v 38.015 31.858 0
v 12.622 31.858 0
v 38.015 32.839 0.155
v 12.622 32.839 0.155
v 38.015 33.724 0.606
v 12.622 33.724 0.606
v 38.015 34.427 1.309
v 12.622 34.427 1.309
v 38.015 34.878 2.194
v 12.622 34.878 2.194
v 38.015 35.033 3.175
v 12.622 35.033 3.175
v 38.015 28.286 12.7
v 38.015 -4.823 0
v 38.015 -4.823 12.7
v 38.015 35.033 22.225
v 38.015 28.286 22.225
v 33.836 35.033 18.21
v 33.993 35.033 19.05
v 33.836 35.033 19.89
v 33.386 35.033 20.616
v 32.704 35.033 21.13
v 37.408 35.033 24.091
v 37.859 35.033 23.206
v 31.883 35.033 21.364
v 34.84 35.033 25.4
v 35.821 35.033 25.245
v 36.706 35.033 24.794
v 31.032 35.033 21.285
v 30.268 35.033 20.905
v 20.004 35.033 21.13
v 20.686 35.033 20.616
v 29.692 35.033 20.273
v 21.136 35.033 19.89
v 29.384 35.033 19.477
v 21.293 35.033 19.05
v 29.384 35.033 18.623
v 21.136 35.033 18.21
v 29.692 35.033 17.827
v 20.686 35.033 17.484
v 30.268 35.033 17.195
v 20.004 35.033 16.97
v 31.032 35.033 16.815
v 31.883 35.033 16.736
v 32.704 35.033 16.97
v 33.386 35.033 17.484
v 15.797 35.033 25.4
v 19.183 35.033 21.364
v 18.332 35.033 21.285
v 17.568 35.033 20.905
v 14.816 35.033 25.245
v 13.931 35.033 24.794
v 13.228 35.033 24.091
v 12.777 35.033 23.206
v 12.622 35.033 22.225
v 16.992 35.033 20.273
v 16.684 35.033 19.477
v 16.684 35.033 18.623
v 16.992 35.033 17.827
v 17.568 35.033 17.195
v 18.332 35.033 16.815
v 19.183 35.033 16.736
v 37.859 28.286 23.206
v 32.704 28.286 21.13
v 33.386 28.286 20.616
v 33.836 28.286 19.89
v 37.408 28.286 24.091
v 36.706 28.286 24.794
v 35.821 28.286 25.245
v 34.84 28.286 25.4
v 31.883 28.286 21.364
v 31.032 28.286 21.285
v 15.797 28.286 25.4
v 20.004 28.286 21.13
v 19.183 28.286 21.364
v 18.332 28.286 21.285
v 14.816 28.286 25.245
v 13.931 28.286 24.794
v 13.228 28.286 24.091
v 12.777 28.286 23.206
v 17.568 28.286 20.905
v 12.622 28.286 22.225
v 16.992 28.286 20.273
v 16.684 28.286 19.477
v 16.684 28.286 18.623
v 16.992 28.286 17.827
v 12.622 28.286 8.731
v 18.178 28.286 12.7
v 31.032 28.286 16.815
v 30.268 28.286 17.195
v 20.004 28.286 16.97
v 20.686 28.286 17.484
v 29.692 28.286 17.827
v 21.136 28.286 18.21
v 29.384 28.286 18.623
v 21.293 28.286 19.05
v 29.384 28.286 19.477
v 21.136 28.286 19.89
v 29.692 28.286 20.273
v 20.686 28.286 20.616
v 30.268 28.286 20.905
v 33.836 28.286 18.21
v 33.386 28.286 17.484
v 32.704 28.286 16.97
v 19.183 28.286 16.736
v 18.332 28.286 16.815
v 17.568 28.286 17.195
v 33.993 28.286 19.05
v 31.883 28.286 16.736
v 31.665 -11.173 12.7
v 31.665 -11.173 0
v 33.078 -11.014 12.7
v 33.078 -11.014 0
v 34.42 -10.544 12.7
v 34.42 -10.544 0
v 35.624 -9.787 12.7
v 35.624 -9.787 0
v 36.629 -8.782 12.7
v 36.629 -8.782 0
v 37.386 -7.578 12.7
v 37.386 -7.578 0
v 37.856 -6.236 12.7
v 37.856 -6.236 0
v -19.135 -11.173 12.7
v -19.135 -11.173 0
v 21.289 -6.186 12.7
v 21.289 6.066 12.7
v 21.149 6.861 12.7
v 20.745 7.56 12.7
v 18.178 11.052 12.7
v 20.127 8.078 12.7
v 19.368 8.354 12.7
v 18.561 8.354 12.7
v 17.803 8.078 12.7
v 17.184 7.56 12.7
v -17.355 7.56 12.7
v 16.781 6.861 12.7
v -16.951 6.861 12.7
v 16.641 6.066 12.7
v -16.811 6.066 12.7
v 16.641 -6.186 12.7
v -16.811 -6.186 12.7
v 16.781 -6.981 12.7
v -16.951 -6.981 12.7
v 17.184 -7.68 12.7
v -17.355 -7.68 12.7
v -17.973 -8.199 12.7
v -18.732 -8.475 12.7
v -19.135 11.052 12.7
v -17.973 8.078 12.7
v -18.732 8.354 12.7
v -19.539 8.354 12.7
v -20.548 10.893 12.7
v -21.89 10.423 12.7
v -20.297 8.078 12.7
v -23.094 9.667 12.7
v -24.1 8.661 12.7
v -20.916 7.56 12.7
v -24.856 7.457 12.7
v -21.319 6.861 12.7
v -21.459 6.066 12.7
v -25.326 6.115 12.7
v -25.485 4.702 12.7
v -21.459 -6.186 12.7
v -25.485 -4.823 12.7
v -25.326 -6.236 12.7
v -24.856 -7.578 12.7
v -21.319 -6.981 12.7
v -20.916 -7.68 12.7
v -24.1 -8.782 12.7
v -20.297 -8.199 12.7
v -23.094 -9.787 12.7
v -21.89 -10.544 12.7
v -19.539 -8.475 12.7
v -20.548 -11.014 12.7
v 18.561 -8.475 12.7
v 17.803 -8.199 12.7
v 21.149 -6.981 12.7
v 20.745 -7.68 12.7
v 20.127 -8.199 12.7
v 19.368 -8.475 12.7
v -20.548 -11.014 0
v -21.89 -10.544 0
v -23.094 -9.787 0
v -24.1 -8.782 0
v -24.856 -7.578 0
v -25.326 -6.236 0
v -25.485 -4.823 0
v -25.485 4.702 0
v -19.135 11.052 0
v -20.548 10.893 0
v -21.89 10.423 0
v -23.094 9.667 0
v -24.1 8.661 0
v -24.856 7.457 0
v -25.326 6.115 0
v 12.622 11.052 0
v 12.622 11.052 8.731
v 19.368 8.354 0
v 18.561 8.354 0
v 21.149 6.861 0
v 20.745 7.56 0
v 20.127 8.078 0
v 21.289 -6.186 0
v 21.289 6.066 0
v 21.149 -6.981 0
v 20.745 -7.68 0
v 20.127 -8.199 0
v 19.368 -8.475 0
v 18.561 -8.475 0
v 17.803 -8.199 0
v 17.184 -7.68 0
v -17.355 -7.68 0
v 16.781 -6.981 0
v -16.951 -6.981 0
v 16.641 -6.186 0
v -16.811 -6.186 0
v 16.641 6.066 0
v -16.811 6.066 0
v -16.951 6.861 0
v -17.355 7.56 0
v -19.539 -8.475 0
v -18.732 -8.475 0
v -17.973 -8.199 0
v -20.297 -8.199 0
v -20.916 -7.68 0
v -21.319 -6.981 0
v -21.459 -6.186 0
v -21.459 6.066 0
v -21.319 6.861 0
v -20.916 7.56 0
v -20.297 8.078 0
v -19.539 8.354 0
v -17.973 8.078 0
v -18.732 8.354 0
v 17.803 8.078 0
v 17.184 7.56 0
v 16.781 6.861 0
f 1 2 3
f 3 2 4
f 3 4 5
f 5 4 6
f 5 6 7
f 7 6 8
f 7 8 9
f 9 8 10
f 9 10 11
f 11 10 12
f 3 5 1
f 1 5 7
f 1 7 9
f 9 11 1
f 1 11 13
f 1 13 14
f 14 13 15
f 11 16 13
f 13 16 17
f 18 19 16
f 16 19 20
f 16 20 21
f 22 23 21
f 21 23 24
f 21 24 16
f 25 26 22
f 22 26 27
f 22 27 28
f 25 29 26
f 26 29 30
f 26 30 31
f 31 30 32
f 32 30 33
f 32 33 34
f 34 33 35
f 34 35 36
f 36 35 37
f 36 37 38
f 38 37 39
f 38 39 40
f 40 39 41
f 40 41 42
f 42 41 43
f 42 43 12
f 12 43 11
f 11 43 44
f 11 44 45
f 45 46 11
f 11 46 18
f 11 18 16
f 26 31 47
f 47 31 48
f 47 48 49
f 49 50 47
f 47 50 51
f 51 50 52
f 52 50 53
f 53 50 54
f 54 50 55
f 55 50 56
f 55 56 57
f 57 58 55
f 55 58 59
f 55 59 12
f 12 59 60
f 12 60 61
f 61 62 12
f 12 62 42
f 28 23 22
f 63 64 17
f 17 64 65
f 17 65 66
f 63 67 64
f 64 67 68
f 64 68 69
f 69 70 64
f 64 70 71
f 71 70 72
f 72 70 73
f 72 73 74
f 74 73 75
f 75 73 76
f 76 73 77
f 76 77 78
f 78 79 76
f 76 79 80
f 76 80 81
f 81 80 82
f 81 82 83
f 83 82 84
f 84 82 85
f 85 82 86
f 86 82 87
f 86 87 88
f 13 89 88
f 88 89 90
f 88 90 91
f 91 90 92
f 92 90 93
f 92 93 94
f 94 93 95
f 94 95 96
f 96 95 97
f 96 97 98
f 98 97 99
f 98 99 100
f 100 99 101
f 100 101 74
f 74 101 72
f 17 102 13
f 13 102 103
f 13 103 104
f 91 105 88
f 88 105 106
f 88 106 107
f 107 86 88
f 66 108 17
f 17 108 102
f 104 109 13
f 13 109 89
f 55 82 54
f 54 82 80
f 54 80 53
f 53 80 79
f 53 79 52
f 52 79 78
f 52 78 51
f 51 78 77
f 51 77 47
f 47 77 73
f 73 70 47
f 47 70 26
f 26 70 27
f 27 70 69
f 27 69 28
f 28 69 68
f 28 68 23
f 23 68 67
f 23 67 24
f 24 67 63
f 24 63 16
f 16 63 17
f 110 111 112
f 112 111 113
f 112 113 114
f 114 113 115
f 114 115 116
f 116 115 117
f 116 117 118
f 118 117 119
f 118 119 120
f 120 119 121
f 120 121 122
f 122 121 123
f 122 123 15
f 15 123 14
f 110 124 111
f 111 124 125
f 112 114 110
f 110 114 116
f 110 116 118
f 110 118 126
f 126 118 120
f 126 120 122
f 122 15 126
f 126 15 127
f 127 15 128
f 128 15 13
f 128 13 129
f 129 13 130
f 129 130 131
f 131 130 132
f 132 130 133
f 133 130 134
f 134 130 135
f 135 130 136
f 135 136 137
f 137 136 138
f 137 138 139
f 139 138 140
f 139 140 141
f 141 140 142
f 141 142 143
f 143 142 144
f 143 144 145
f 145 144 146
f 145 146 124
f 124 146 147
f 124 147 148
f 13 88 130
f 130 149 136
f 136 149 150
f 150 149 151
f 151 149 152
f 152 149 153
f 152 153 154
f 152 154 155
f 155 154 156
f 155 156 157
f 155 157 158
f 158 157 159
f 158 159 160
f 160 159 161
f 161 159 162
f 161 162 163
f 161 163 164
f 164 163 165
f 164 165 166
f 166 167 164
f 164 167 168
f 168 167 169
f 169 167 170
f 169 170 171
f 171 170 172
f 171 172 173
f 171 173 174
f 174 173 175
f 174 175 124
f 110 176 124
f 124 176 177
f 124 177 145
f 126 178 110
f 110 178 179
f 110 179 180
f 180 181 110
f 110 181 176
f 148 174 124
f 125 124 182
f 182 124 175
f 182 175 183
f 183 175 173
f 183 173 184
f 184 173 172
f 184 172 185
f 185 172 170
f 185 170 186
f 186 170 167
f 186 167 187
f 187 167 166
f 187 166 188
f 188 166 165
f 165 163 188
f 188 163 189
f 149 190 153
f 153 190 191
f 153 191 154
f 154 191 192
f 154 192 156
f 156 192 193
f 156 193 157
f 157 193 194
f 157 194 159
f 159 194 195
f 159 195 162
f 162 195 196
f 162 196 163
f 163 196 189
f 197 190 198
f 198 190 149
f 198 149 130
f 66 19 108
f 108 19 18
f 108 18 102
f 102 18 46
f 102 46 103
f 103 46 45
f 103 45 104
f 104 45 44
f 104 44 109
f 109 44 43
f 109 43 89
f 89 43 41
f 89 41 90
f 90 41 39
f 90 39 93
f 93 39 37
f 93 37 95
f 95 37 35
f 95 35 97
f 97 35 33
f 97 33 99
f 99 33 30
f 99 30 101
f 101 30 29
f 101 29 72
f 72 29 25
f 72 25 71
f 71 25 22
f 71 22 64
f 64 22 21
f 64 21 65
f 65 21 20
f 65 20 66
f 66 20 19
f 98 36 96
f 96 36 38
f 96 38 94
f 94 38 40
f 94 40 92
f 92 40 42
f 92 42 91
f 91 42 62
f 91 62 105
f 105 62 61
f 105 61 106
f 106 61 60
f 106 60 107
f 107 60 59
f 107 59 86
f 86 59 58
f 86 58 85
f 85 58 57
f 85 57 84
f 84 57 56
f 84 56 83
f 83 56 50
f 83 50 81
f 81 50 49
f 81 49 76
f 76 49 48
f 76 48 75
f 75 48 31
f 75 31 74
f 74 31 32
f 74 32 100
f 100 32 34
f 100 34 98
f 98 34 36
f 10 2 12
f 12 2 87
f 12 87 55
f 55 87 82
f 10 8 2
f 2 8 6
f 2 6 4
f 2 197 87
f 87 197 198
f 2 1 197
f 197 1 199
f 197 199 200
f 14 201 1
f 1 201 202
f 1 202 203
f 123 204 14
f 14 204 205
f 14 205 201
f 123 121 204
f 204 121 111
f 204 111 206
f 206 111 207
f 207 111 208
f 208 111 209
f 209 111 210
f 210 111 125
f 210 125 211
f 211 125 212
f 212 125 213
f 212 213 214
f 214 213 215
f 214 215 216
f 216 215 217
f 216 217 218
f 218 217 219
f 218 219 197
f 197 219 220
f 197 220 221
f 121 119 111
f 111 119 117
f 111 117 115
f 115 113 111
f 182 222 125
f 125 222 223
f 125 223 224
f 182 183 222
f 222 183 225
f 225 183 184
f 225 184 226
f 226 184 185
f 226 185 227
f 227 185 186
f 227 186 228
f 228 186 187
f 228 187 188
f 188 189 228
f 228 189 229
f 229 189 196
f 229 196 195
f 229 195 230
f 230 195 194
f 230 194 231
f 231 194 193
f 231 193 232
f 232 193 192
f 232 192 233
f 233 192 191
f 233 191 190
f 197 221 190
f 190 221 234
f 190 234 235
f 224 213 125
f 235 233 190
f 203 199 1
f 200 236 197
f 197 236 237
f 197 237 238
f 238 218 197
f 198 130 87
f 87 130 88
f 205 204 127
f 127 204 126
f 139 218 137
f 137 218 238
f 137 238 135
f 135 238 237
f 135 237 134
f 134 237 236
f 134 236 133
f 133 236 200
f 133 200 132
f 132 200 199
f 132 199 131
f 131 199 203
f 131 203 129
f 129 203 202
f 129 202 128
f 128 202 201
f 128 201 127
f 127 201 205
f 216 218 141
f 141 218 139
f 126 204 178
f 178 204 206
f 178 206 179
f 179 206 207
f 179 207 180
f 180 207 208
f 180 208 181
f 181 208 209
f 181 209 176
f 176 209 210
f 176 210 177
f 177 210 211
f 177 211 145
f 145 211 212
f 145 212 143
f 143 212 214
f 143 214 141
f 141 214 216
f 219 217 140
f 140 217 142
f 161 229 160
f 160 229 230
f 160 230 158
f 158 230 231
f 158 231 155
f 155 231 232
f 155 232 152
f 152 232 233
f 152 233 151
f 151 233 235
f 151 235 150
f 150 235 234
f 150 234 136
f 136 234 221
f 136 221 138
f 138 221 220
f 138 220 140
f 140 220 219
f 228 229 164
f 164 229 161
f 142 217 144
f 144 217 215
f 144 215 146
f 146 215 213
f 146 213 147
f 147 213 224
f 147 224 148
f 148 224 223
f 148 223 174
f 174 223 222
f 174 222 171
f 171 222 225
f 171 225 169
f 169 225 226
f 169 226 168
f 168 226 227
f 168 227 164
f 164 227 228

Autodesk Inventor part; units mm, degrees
ref_plane "YZ Plane" through (0, 0, 0) normal (1, 0, 0) x (0, 1, 0)
ref_plane "XZ Plane" through (0, 0, 0) normal (0, 1, 0) x (-1, 0, 0)
ref_plane "XY Plane" through (0, 0, 0) normal (0, 0, 1) x (1, 0, 0)
sketch "Sketch1" plane through (0, 0, 0) normal (0, 0, 1) x (1, 0, 0)
  line L0 (-19.1352, -8.5102) -> (-19.1352, 8.3898) construction
  line L1 (-16.8111, -6.1861) -> (-16.8111, 6.0657)
  line L2 (-21.4593, 6.0657) -> (-21.4593, -6.1861)
  arc A0 (-21.4593, -6.1861) -> (-16.8111, -6.1861) centre (-19.1352, -6.1861) ccw
  arc A1 (-16.8111, 6.0657) -> (-21.4593, 6.0657) centre (-19.1352, 6.0657) ccw
  line L3 (18.9648, -8.5102) -> (18.9648, 8.3898) construction
  line L4 (21.2889, -6.1861) -> (21.2889, 6.0657)
  line L5 (16.6407, 6.0657) -> (16.6407, -6.1861)
  arc A2 (16.6407, -6.1861) -> (21.2889, -6.1861) centre (18.9648, -6.1861) ccw
  arc A3 (21.2889, 6.0657) -> (16.6407, 6.0657) centre (18.9648, 6.0657) ccw
  line L6 (-19.1352, 8.3898) -> (18.9648, 8.3898)
  line L7 (18.9648, -8.5102) -> (-19.1352, -8.5102)
  line L8 (25.3148, 11.0523) -> (-25.4852, 11.0523)
  line L9 (-25.4852, 11.0523) -> (-25.4852, -11.1727)
  line L10 (-25.4852, -11.1727) -> (25.3148, -11.1727)
  line L11 (25.3148, -11.1727) -> (25.3148, 11.0523)
  line L12 (25.3148, 11.0523) -> (-25.4852, -11.1727) construction
  line L13 (-25.4852, 11.0523) -> (25.3148, -11.1727) construction
  point P0 (0, 0)
  point P1 (-0.0852, -0.0602)
  point P2 (-19.1352, -0.0602)
  point P3 (18.9648, -0.0602)
  dimension "d0" = 4.6482
  dimension "d1" = 4.6482
  dimension "d2" = 50.8
  dimension "d3" = 22.225
extrude "Extrusion1" add sketch "Sketch1" along normal blind 12.7 contours L1 A1 L6 A3 L5 A2 L7 A0 | L11 L10 L9 L8
sketch "Sketch2" plane through (-25.4852, 11.0523, 0) normal (0, 1, 0) x (1, 0, 0)
  line L0 (0, 0) -> (50.8, 0) projected
  line L1 (0, 0) -> (12.7, 0)
  line L2 (12.7, 0) -> (12.7, -12.7)
  line L3 (12.7, -12.7) -> (0, -12.7)
  line L4 (0, -12.7) -> (0, 0)
  line L5 (50.8073, 0) -> (38.1073, 0)
  line L6 (38.1073, 0) -> (38.1073, -12.7)
  line L7 (38.1073, -12.7) -> (50.8073, -12.7)
  line L8 (50.8, 0) -> (50.8, -12.7) projected
  line L9 (50.8, 0) -> (50.8, -12.7) projected
  line L10 (50.8, -12.7) -> (50.8, 0)
  line L11 (50.8, 0) -> (38.1073, 0)
  point P0 (25.4852, 0)
  dimension "d7" = 12.7
  dimension "d8" = 12.7
  dimension "d9" = 12.7
  dimension "d10" = 12.7
extrude "Extrusion2" add sketch "Sketch2" along normal blind 22.3933
chamfer "Chamfer1" distance 3.9688 distance2 5.5563 1 edges at (12.6221, 22.2489, 12.7) measured on face at (12.6221, 18.5167, 4.2333)
chamfer "Chamfer2" distance 4.7625 distance2 7.9375 1 edges at (-12.7852, 22.2489, 0) measured on face at (-12.7852, 18.5167, 8.4667)
sketch "Sketch3" plane through (-25.4852, 33.4456, 0) normal (0, 1, 0) x (1, 0, 0)
  line L0 (0, 0) -> (6.319, 0)
  line L1 (38.1073, 0) -> (4.7625, 0) projected
  line L2 (6.319, -0.6519) -> (0, -0.6519)
  line L3 (0, 0) -> (0, -12.7) projected
  line L4 (0, 0) -> (0, -0.6519)
  line L5 (6.319, 0) -> (6.319, -0.6519)
  point P0 (25.4852, 0)
extrude "Extrusion3" cut sketch "Sketch3" against normal up to surface (22.3933 mm away)
fillet "Fillet2" radius 3.175 2 edges at (-19.6363, 22.2489, 0.6519) (-25.4852, 22.2489, 0.6519)
sketch "Sketch4" plane through (0, 0, 12.7) normal (0, 0, 1) x (1, 0, 0)
  line L0 (-12.7852, 11.0523) -> (-18.8822, 11.0523) projected
  line L1 (-12.7852, 11.0523) -> (-12.7852, 26.6987)
  line L2 (-12.7852, 33.4456) -> (-12.7852, 11.0523) projected
  line L3 (-12.7852, 11.0523) -> (25.3148, 11.0523)
  line L4 (25.3148, -11.1727) -> (25.3148, 33.4456) projected
  line L5 (25.3148, 11.0523) -> (25.3148, 26.6987)
  line L6 (12.6221, 33.4456) -> (12.6221, 11.0523) projected
  line L7 (-25.4852, -11.1727) -> (-25.4852, 33.4456) projected
  line L8 (25.3148, 26.6987) -> (12.6221, 26.6987)
  line L9 (12.6221, 26.6987) -> (12.6221, 36.2237)
  line L10 (25.3148, 36.2237) -> (25.3148, 26.6987)
  line L11 (-12.7852, 26.6987) -> (-25.4852, 26.6987)
  line L12 (-25.4852, 26.6987) -> (-25.4852, 36.2237)
  line L13 (-12.7852, 36.2237) -> (-12.7852, 26.6987)
  line L14 (18.1783, 33.4456) -> (12.6221, 33.4456) projected
  line L15 (25.3148, 33.4456) -> (12.6221, 33.4456)
  line L16 (-12.7852, 36.2237) -> (-12.7852, 33.4456)
  line L17 (-25.4852, 33.4456) -> (-12.7852, 33.4456) projected
  line L18 (-12.7852, 33.4456) -> (-25.4852, 33.4456)
  line L19 (-25.4852, 33.4456) -> (-25.4852, 36.2237)
  line L20 (12.6221, 33.4456) -> (12.6221, 26.6987)
  line L21 (25.3148, 26.6987) -> (25.3148, 33.4456)
  line L22 (-12.7852, 26.6987) -> (-12.7852, 33.4456)
  line L23 (-25.4852, 26.6987) -> (-25.4852, 33.4456)
  point P0 (0, 0)
  dimension "d22" = 15.6464
extrude "Extrusion4" add sketch "Sketch4" along normal blind 12.7 contours L2 L11 L7 L17 | L6 L14 L15 L4 L8
extrude "Extrusion5" add sketch "Sketch4" against normal blind 4.2333 contours L6 L14 L15 L4 L8
sketch "Sketch5" plane through (-25.4852, 33.4456, 0) normal (0, 1, 0) x (1, 0, 0)
  line L0 (50.8, -25.4) -> (38.1073, -25.4) projected
  line L1 (12.7, -25.4) -> (0, -25.4) projected
  line L2 (44.4537, -25.4) -> (44.4537, -19.05)
  line L3 (6.35, -25.4) -> (6.35, -19.05)
  circle A0 centre (6.35, -19.05) radius 2.3241
  circle A1 centre (44.4537, -19.05) radius 2.3241
  point P0 (25.4852, 0)
  dimension "d27" = 6.35
  dimension "d28" = 6.35
  dimension "d29" = 4.6482
  dimension "d30" = 4.6482
extrude "Extrusion6" cut sketch "Sketch5" against normal through all
sketch "Sketch6" plane through (-12.7852, 11.0523, 12.7) normal (1, 0, 0) x (0, 0, -1)
  line L0 (-12.7, 15.6464) -> (-12.7, 22.3933) projected
  line L1 (0, 15.6464) -> (-12.7, 15.6464) projected
  line L2 (-12.7, 15.6464) -> (-12.7, 22.3933)
  line L3 (-12.7, 22.3933) -> (0, 22.3933)
  line L4 (0, 22.3933) -> (0, 15.6464)
  line L5 (0, 15.6464) -> (-12.7, 15.6464)
  point P0 (12.7, -11.0523)
extrude "Extrusion7" [suppressed]
sketch "Sketch7" plane through (18.1783, 26.6987, 12.7) normal (0, -1, 0) x (1, 0, 0)
  circle A0 centre (-37.3136, 6.35) radius 2.3241 projected
  circle A1 centre (0.7901, 6.35) radius 2.3241 projected
  line L0 (-37.3136, 6.35) -> (-24.6136, 6.35)
  line L1 (-24.6136, 6.35) -> (-11.9136, 6.35)
  line L2 (-26.798, 4.1656) -> (-22.4292, 4.1656)
  line L3 (-22.4292, 4.1656) -> (-22.4292, 8.5344)
  line L4 (-22.4292, 8.5344) -> (-26.798, 8.5344)
  line L5 (-26.798, 8.5344) -> (-26.798, 4.1656)
  line L6 (-26.798, 4.1656) -> (-22.4292, 8.5344) construction
  line L7 (-22.4292, 4.1656) -> (-26.798, 8.5344) construction
  line L8 (-9.7292, 8.5344) -> (-14.098, 8.5344)
  line L9 (-9.7292, 4.1656) -> (-9.7292, 8.5344)
  line L10 (-14.098, 4.1656) -> (-9.7292, 4.1656)
  line L11 (-14.098, 8.5344) -> (-14.098, 4.1656)
  point P0 (-18.1783, -12.7)
  dimension "d35" = 12.7
  dimension "d36" = 12.7
  dimension "d37" = 4.3688
  dimension "d38" = 4.3688
  dimension "d41" = 12.7
extrude "Extrusion8" [suppressed]
fillet "Fillet3" [suppressed]
sketch "Sketch8" plane through (-25.4852, 11.0523, 0) normal (0, 1, 0) x (1, 0, 0)
  line L0 (38.1073, 0) -> (0, 0) projected
  line L1 (0, 0) -> (14.6548, 0)
  line L2 (14.6548, 0) -> (14.6548, -26.951)
  line L3 (14.6548, -26.951) -> (0, -26.951)
  line L4 (0, -26.951) -> (0, 0)
  point P0 (25.4852, 0)
  point P1 (14.6548, 0)
extrude "Extrusion9" cut sketch "Sketch8" along normal blind 25.4
sketch "Sketch9" plane through (25.3148, -11.1727, 12.7) normal (1, 0, 0) x (0, 0, -1)
  line L0 (0, 0) -> (0, 37.8714) projected
  line L1 (12.7, 0) -> (0, 0) projected
  line L2 (12.7, 0) -> (12.7, 44.6183) projected
  line L3 (12.7, 44.6183) -> (-12.7, 44.6183) projected
  line L4 (-12.7, 37.8714) -> (-12.7, 44.6183) projected
  line L5 (0, 37.8714) -> (-12.7, 37.8714) projected
  point P0 (12.7, 11.1727)
extrude "Extrusion10" add sketch "Sketch9" along normal blind 12.7
sketch "Sketch10" plane through (-25.4852, 33.4456, 0) normal (0, 1, 0) x (1, 0, 0)
  circle A0 centre (44.4537, -19.05) radius 2.3241 projected
  line L0 (44.4537, -19.05) -> (57.1537, -19.05)
  circle A1 centre (57.1537, -19.05) radius 2.3241
  point P0 (25.4852, 0)
  dimension "d58" = 12.7
  dimension "d59" = 4.6482
extrude "Extrusion11" cut sketch "Sketch10" against normal blind 12.7 contours A1
fillet "Fillet9" radius 3.175 2 edges at (12.6221, 30.0721, 25.4) (38.0148, 30.0721, 25.4)
fillet "Fillet10" radius 6.35 3 edges at (-25.4852, 11.0523, 6.35) (-25.4852, -11.1727, 6.35) (38.0148, -11.1727, 6.35)
sketch "Sketch11" plane through (-25.4852, 33.4456, 0) normal (0, 1, 0) x (1, 0, 0)
  arc A0 (60.325, -25.4) -> (63.5, -22.225) centre (60.325, -22.225) ccw projected
  line L0 (63.5, 0) -> (63.5, -22.225) projected
  line L1 (38.1073, 0) -> (63.5, 0) projected
  line L2 (38.1073, 0) -> (38.1073, -22.225) projected
  arc A1 (38.1073, -22.225) -> (41.2823, -25.4) centre (41.2823, -22.225) ccw projected
  line L3 (41.2823, -25.4) -> (60.325, -25.4) projected
  circle A2 centre (57.1537, -19.05) radius 2.3241 projected
  circle A3 centre (44.4537, -19.05) radius 2.3241 projected
  point P0 (25.4852, 0)
extrude "Extrusion12" add sketch "Sketch11" along normal blind 1.5875
sketch "Sketch12" plane through (18.1783, 26.6987, 12.7) normal (0, -1, 0) x (1, 0, 0)
  circle A0 centre (13.4901, 6.35) radius 2.3241 projected
  circle A1 centre (0.7901, 6.35) radius 2.3241 projected
  arc A2 (19.8364, 9.525) -> (16.6614, 12.7) centre (16.6614, 9.525) ccw projected
  line L0 (-2.3813, 12.7) -> (16.6614, 12.7) projected
  arc A3 (-2.3813, 12.7) -> (-5.5563, 9.525) centre (-2.3813, 9.525) ccw projected
  line L1 (-5.5563, -3.9688) -> (-5.5563, 9.525) projected
  line L2 (0, 0) -> (-5.5563, -3.9688) projected
  line L3 (19.8364, 0) -> (0, 0) projected
  line L4 (19.8364, 9.525) -> (19.8364, 0) projected
  point P0 (-18.1783, -12.7)
extrude "Extrusion13" cut sketch "Sketch12" against normal blind 1.5875
fillet "Fillet12" radius 3.175 1 edges at (25.3184, 35.0331, 0)
properties part number "Optical Mount"
